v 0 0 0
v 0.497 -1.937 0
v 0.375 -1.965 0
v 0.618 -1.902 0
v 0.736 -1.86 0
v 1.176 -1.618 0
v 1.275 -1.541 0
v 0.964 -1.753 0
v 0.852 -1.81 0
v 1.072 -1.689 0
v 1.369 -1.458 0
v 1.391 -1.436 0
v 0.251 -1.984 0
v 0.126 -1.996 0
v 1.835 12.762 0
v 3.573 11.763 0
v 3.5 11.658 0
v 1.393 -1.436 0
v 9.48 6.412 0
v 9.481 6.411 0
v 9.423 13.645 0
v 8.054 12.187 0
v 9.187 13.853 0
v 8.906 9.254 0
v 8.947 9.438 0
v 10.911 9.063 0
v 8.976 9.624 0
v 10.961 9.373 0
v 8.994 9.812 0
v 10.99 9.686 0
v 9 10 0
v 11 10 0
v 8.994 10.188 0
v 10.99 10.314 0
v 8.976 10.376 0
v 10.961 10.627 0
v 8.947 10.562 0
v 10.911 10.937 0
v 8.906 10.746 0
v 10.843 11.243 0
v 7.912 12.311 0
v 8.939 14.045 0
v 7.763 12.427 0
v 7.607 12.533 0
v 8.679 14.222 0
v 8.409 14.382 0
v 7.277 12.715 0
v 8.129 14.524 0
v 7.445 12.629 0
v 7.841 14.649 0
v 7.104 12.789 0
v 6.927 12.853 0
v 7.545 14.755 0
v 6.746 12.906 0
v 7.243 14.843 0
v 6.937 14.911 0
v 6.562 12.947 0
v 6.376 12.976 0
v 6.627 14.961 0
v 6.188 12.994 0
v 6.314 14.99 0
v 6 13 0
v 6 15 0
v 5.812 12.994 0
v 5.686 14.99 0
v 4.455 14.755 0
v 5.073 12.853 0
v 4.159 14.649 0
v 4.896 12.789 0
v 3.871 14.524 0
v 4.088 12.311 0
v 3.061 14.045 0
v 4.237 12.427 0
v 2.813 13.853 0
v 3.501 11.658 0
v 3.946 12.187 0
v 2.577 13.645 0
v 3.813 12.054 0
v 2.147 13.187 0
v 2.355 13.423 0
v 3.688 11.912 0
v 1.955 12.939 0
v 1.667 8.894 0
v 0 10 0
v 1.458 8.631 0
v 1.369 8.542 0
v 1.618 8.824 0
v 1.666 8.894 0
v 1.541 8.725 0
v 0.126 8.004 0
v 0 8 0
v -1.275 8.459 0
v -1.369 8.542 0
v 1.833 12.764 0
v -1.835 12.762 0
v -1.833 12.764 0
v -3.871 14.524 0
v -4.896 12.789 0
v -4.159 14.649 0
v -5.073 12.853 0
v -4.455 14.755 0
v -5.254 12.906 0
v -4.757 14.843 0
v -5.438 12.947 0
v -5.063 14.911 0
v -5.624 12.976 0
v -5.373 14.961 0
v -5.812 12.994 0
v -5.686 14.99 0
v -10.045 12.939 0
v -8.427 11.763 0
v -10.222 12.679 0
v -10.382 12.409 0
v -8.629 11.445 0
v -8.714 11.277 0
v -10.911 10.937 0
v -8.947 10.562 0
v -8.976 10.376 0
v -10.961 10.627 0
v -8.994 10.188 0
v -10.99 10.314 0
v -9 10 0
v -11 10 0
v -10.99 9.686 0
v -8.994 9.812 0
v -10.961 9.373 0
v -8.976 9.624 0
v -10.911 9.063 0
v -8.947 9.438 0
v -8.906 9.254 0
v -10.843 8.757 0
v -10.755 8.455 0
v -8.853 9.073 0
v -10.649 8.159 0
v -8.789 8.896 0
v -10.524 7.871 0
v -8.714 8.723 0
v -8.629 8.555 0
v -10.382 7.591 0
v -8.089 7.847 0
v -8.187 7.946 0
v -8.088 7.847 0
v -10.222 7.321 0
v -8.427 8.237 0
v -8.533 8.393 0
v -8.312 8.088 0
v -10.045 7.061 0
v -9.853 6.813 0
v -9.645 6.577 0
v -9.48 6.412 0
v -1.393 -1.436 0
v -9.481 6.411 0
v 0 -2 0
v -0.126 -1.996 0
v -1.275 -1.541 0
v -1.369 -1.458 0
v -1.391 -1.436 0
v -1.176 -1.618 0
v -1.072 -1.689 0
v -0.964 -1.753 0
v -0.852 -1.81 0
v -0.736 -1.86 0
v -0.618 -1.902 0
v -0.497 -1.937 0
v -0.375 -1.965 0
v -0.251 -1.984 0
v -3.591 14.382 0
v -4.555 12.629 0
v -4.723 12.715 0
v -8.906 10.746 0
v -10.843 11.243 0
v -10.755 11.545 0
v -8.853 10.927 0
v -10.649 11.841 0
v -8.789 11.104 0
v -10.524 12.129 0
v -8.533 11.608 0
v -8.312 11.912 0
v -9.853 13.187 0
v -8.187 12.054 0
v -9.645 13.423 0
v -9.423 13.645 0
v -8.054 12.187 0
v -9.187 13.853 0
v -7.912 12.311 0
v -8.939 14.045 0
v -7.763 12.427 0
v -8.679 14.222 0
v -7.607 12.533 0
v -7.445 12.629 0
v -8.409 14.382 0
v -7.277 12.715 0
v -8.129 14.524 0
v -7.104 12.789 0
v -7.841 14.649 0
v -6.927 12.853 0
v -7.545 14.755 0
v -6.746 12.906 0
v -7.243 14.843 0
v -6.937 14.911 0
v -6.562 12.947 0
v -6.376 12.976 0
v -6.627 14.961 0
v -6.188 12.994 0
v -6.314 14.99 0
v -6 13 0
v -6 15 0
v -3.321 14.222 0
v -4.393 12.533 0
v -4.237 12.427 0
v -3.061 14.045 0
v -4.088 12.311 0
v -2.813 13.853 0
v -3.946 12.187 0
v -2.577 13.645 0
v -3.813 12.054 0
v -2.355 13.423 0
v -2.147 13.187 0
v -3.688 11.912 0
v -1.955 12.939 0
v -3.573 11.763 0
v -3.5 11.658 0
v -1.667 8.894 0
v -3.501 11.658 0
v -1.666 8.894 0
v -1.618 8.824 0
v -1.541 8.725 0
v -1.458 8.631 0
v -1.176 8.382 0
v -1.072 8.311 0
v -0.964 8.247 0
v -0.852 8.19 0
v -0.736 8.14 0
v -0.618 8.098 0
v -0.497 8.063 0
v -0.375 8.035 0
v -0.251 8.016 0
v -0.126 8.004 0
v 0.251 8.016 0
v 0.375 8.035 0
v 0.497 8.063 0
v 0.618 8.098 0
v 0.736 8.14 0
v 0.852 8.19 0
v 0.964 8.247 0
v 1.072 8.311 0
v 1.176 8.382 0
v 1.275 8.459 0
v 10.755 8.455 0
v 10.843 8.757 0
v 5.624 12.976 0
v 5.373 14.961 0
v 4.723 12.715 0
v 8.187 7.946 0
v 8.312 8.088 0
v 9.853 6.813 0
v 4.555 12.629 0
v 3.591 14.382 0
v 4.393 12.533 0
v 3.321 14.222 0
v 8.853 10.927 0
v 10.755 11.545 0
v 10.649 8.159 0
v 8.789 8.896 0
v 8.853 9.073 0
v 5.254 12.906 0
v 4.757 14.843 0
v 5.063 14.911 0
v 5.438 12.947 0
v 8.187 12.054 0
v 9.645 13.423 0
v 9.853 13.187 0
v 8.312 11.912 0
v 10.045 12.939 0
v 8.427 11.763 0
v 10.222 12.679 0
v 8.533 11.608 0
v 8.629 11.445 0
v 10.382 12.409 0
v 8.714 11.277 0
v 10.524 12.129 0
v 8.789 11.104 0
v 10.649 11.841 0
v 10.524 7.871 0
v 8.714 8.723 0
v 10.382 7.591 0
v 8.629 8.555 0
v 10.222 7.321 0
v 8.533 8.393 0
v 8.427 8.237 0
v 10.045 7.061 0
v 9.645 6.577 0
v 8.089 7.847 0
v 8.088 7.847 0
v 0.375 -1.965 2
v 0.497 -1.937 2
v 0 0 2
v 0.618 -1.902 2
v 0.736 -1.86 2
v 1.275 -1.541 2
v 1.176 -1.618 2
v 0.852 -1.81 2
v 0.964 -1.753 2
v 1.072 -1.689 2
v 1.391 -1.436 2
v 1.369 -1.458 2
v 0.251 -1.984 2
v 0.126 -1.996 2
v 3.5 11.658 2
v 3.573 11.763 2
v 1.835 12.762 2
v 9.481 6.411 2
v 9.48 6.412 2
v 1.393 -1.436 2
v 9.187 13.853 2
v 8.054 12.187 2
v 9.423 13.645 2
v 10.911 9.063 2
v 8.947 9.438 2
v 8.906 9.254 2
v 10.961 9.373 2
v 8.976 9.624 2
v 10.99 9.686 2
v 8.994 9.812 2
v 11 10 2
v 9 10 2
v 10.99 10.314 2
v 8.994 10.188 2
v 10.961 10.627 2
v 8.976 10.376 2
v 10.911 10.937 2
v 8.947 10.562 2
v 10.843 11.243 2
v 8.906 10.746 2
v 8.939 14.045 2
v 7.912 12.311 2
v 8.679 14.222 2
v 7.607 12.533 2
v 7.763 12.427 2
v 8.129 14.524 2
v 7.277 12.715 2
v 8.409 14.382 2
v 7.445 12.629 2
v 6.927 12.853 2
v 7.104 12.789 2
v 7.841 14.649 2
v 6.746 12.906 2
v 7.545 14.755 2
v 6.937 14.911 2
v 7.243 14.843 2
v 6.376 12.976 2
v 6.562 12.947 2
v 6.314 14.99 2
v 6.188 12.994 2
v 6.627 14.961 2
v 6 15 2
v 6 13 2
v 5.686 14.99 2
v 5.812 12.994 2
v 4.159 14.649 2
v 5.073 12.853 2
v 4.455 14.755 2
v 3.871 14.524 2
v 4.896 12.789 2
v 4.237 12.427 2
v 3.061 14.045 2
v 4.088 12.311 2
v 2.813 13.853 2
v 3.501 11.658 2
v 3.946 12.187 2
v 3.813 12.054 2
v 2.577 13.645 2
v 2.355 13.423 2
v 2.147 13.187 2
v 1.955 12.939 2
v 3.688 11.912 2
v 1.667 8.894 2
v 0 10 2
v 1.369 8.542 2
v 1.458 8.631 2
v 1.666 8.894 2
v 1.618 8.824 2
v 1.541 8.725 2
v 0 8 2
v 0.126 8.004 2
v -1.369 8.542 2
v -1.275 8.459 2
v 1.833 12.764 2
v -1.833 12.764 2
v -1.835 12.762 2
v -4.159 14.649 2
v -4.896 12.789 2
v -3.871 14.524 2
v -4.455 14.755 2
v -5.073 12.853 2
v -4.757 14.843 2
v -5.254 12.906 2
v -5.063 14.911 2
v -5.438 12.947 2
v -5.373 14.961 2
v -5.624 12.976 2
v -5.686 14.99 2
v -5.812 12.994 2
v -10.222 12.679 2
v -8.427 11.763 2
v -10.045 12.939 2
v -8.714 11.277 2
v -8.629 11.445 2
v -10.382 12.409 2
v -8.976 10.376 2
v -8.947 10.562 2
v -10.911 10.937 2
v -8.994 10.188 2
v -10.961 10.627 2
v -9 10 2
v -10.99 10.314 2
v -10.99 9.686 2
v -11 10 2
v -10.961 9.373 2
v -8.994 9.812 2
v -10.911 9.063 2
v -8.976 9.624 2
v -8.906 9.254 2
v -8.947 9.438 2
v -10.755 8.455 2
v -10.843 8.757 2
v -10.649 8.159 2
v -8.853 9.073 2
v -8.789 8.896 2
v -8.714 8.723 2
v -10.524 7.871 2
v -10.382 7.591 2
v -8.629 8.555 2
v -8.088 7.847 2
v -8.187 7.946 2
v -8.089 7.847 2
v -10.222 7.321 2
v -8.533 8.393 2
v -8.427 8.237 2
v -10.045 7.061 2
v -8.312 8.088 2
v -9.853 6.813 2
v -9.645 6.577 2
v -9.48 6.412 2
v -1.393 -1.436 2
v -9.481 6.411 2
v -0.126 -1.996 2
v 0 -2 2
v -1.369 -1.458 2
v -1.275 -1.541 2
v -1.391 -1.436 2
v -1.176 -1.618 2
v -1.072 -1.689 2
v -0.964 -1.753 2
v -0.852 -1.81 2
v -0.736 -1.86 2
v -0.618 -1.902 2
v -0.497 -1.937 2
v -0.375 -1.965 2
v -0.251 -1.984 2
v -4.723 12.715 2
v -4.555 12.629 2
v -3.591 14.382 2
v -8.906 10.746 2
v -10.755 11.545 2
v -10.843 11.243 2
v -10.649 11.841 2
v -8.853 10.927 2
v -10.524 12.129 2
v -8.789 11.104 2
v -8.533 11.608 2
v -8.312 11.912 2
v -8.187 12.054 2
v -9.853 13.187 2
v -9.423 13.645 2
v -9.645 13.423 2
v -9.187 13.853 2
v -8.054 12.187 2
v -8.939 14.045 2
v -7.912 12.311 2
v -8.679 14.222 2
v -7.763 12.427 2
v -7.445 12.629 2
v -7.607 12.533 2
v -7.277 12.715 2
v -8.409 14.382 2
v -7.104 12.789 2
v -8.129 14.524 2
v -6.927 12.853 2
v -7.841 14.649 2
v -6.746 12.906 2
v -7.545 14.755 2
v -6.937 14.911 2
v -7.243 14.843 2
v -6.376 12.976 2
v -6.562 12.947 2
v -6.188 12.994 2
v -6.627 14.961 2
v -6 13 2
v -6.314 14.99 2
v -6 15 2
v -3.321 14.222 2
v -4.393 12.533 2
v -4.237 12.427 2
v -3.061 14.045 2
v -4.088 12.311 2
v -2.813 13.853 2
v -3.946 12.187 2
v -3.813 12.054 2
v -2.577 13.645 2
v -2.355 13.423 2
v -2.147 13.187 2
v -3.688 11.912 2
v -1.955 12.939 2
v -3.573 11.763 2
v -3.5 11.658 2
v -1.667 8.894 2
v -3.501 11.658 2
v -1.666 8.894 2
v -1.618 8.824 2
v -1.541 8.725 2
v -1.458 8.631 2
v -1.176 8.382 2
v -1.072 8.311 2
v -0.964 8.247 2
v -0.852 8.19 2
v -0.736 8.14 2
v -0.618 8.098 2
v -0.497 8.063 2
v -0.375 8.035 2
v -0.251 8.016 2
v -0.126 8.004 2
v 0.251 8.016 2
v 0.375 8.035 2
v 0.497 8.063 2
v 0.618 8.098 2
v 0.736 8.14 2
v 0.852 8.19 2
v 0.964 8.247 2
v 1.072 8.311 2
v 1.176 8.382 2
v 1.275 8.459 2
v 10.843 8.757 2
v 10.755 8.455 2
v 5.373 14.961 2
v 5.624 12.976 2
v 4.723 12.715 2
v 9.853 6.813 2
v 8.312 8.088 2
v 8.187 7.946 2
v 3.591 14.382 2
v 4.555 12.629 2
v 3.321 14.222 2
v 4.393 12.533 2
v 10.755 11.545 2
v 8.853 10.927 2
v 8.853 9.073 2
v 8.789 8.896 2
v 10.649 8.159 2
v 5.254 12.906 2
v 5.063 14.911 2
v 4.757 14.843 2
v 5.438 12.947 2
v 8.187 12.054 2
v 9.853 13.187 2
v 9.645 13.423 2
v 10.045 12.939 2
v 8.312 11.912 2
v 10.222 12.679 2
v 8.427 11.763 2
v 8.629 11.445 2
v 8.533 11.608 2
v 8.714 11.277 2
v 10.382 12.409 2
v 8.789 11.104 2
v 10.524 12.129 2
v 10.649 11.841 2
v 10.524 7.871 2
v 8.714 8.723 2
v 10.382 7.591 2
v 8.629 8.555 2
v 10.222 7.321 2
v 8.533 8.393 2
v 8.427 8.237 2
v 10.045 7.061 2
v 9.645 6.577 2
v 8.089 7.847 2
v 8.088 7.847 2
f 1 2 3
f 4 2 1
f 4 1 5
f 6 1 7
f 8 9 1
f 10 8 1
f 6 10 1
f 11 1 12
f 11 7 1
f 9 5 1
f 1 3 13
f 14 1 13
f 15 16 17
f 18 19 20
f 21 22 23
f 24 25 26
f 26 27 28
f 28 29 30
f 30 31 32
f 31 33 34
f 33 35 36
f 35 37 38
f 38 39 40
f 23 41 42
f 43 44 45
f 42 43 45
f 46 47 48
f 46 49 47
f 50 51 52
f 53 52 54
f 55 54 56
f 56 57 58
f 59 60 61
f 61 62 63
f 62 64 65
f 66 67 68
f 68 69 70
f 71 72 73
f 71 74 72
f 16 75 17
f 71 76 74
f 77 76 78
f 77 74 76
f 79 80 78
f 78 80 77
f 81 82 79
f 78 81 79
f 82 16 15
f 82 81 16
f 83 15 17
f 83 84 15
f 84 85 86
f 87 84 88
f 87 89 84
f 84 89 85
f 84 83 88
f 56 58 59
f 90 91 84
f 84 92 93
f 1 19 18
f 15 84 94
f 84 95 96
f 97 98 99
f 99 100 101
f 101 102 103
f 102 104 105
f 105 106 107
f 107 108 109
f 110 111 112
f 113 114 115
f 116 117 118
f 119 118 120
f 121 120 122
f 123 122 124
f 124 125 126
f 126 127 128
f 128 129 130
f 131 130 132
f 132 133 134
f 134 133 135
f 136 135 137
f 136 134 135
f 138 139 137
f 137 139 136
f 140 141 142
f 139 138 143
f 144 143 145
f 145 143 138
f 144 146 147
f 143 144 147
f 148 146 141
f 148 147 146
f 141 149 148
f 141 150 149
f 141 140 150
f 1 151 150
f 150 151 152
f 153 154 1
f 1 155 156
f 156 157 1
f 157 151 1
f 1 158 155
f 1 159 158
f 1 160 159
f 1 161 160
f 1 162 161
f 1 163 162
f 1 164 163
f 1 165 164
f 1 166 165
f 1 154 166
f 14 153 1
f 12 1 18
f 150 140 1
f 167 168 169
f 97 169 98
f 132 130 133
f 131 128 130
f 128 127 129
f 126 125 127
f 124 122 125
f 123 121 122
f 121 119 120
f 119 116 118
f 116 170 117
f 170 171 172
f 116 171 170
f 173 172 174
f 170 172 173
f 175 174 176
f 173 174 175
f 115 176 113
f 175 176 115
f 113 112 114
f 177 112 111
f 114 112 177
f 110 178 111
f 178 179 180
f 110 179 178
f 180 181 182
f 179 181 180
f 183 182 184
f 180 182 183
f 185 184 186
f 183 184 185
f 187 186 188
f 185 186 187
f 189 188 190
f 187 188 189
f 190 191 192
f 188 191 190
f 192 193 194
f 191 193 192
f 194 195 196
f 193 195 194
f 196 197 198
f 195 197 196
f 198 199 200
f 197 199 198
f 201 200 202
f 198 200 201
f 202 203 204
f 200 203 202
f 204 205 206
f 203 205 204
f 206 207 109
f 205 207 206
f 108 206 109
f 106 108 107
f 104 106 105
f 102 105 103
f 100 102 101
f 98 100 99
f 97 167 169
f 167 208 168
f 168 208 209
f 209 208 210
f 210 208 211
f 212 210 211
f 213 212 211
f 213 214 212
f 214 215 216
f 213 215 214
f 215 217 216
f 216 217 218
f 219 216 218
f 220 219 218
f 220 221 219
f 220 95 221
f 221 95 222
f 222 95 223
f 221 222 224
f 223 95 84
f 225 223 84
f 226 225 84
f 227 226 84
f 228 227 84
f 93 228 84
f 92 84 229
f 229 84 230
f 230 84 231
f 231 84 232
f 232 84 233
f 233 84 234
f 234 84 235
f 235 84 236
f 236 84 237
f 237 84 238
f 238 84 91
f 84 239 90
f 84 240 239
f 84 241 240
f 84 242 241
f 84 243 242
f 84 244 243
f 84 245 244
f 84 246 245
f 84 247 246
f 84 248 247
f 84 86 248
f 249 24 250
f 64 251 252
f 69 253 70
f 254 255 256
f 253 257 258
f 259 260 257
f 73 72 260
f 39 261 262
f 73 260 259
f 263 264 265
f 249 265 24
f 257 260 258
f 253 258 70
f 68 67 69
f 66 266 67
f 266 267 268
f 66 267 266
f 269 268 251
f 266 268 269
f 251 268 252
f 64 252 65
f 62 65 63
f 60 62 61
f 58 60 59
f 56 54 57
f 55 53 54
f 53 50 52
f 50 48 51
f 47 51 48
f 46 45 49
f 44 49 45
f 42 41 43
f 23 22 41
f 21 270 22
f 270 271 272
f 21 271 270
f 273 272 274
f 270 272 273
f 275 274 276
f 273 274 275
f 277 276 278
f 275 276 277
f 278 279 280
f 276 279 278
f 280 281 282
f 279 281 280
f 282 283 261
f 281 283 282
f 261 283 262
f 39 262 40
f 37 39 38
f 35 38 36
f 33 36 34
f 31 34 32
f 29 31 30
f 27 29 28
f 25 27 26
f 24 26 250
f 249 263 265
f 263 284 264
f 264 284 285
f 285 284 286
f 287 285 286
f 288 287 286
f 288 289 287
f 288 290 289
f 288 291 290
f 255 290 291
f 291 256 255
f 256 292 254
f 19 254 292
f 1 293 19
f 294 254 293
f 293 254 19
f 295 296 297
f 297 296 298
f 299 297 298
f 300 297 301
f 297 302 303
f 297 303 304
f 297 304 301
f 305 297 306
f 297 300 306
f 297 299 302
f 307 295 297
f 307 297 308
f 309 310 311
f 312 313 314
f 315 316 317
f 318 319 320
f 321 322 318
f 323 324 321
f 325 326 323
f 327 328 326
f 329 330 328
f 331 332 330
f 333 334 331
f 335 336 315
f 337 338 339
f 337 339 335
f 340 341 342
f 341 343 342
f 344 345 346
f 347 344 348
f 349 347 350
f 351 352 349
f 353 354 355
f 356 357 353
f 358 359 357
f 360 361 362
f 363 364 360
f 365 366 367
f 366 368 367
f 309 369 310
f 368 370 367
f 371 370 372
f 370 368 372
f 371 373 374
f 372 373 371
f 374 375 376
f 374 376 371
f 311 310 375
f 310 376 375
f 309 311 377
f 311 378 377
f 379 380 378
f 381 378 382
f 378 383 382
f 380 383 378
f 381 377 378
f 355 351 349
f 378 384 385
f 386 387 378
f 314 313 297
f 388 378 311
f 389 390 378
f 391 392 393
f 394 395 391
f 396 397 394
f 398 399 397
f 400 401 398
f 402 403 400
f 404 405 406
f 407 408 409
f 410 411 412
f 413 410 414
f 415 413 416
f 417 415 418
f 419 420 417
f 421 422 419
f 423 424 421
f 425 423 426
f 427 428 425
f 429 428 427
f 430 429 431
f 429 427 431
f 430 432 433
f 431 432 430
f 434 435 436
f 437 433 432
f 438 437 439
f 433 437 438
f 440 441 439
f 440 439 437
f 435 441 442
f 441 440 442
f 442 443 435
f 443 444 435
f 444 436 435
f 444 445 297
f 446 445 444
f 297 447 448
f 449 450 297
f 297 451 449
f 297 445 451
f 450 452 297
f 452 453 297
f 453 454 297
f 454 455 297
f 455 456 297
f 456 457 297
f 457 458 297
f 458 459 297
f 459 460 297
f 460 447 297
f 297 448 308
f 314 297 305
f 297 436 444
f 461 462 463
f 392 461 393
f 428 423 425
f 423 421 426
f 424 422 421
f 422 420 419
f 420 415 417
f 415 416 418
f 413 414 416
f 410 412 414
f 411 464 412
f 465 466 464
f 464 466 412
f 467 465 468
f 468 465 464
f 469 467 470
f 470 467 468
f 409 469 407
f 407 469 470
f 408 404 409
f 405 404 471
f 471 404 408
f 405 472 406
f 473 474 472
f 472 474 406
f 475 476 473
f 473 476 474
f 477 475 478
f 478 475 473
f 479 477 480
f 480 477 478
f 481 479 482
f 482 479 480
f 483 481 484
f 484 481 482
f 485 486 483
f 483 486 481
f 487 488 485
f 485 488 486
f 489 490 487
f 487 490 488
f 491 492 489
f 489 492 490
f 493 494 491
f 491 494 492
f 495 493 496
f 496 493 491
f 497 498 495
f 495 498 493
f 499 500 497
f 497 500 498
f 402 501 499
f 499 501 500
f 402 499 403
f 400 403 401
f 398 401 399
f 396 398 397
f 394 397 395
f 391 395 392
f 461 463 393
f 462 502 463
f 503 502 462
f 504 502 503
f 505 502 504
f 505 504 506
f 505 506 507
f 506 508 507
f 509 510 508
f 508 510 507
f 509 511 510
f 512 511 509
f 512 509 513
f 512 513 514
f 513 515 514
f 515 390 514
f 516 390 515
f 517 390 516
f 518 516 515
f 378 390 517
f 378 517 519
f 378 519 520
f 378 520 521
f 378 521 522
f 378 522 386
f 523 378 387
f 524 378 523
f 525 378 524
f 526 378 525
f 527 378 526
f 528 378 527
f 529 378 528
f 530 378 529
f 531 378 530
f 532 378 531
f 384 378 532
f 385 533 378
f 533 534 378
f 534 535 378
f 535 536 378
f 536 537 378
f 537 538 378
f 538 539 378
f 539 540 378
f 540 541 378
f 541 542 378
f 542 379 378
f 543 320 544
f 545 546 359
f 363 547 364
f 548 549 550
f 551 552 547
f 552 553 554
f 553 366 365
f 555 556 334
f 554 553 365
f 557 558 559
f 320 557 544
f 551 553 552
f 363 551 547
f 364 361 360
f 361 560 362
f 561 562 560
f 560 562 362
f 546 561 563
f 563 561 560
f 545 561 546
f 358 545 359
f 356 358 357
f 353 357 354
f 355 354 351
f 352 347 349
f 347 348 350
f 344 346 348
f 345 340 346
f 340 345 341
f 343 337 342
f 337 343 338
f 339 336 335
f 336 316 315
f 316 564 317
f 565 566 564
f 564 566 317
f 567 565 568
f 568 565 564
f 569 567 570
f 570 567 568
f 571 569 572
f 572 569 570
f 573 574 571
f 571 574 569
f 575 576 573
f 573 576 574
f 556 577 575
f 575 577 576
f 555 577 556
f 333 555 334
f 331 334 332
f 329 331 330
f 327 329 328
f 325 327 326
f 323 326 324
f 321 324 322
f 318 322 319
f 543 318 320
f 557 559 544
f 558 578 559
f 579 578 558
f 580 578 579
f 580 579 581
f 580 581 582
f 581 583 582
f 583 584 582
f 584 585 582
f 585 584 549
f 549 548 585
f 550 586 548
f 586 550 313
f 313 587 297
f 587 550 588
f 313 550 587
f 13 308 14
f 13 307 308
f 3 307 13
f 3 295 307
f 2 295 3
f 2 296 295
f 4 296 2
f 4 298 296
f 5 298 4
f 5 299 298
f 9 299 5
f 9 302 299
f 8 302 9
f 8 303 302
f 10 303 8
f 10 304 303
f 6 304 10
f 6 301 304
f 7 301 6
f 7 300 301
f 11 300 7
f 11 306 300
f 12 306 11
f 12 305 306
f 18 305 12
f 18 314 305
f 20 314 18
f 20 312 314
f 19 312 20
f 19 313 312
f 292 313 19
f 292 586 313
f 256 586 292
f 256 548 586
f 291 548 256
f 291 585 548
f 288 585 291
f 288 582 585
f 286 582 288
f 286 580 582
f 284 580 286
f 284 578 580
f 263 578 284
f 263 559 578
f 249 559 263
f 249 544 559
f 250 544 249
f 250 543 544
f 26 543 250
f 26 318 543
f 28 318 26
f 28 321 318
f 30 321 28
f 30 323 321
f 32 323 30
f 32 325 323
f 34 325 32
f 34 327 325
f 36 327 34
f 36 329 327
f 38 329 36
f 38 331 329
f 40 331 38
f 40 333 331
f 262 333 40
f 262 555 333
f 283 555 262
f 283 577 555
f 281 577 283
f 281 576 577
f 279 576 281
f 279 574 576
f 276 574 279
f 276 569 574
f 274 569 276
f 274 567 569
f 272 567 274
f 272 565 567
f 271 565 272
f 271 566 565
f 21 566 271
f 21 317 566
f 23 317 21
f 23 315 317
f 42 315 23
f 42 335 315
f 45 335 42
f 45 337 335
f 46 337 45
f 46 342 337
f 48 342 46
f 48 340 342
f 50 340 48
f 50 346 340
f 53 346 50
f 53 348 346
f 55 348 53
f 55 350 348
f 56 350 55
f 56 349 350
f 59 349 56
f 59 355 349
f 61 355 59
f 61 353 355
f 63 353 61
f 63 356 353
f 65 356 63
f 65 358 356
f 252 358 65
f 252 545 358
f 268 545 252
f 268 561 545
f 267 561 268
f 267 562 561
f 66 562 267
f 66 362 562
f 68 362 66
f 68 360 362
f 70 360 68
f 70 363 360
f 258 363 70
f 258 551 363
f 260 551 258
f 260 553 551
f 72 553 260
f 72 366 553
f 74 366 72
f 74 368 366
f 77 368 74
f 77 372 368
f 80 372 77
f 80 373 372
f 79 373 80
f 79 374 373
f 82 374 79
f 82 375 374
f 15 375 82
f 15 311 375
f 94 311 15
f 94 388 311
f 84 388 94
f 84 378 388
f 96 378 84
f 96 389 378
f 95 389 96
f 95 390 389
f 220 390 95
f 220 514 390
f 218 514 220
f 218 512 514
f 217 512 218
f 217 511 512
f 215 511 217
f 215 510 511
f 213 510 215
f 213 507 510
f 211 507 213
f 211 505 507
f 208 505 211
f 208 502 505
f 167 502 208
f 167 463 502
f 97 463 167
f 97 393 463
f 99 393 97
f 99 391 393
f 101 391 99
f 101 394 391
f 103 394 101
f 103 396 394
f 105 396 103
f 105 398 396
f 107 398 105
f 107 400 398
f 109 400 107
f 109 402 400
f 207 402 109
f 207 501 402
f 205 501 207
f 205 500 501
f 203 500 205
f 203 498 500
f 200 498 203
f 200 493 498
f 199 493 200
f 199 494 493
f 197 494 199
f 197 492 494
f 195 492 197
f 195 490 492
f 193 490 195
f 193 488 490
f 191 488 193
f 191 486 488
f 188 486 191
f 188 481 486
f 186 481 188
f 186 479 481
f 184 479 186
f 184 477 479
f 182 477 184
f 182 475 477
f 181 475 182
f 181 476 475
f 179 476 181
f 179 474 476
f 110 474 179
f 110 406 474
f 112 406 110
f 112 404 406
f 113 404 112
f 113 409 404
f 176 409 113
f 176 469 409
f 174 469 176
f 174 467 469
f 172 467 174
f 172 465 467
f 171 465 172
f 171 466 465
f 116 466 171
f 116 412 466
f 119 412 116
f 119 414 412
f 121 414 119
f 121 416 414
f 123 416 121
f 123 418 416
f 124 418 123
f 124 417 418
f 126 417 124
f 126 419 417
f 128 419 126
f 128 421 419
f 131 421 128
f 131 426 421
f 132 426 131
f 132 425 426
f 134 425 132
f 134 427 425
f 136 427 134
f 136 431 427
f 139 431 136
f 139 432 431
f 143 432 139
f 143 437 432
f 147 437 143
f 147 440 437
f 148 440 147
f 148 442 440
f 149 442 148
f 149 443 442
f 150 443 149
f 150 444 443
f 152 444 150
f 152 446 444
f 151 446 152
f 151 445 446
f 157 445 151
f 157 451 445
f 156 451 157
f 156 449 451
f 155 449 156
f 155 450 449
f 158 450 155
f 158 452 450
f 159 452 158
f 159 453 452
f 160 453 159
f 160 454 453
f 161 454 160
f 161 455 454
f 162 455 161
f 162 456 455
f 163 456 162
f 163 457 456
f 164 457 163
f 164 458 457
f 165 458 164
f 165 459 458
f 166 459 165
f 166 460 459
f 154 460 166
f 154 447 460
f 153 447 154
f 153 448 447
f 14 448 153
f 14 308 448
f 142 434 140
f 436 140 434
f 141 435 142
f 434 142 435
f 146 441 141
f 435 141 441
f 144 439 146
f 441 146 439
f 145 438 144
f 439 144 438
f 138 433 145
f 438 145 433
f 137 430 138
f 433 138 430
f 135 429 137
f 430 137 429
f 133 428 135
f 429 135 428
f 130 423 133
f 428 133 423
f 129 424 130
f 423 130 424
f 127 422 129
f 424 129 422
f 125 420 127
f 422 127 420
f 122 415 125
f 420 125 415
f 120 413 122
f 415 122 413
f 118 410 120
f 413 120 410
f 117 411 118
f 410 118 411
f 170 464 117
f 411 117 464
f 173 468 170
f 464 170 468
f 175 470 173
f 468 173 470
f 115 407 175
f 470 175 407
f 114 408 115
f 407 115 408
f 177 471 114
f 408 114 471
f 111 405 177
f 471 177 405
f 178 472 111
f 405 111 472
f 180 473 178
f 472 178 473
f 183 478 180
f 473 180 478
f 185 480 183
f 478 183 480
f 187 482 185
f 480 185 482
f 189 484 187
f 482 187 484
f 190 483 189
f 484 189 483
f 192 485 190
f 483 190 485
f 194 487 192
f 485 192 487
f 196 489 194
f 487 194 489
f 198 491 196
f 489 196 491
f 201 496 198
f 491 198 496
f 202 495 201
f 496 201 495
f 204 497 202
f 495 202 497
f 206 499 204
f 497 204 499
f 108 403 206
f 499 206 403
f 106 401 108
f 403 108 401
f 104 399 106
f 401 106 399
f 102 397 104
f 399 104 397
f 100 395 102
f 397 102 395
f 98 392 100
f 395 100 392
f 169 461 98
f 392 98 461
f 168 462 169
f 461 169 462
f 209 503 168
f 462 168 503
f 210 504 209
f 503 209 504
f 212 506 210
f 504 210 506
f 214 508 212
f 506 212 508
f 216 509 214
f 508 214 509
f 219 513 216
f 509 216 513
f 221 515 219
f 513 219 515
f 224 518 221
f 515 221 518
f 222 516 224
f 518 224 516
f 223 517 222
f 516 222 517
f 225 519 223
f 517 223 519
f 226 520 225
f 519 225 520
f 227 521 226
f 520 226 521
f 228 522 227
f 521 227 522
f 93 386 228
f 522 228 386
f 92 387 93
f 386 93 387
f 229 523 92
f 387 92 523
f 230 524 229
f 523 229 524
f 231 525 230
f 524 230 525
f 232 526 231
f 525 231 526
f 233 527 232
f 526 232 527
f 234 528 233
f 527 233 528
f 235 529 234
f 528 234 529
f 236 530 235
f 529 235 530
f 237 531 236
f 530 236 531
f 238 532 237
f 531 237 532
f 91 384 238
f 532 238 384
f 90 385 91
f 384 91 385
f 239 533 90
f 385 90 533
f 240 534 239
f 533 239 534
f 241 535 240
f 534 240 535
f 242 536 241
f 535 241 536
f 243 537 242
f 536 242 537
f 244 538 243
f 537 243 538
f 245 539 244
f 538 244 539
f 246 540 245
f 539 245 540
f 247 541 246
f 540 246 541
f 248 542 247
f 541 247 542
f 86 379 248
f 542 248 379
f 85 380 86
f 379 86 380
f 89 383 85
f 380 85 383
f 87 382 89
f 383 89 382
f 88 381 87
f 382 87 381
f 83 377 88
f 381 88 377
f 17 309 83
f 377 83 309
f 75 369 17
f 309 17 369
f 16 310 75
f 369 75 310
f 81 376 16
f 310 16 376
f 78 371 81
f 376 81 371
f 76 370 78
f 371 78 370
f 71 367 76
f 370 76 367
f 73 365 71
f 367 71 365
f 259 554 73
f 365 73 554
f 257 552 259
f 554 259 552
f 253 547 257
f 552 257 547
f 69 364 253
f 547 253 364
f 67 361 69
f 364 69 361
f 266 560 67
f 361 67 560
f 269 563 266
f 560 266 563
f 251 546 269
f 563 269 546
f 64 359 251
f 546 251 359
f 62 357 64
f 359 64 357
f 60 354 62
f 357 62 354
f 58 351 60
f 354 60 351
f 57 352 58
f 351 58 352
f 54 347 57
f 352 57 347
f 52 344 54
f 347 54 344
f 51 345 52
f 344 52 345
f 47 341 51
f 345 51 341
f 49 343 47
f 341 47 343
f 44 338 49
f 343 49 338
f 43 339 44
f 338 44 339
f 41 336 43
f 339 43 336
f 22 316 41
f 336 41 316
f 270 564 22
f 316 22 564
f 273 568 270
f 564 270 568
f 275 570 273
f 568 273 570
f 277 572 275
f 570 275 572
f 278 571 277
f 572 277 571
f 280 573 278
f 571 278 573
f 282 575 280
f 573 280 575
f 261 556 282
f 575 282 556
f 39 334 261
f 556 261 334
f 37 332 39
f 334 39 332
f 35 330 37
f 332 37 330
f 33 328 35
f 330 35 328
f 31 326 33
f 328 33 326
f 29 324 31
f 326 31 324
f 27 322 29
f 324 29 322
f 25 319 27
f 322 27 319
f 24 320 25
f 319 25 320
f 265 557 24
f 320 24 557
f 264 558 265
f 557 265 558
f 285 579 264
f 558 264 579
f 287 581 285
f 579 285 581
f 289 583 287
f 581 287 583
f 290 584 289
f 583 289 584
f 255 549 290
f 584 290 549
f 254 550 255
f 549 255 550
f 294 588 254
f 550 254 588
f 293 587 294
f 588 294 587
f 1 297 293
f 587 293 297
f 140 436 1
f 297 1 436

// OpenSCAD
// file: ../utils/shapes.scad
/*
  author: Christopher O'Brien  <obriencj@gmail.com>
  license: GPL v3
*/


function shared_tangents(p1, p2) =
     let(r1 = p1[2],
	 r2 = p2[2],
	 dx = p2.x - p1.x,
	 dy = p2.y - p1.y,
	 d = sqrt(dx * dx + dy * dy),
	 theta = atan2(dy, dx) + acos((r1 - r2) / d))
     [[p1.x + (cos(theta) * r1), p1.y + (sin(theta) * r1)],
      [p2.x + (cos(theta) * r2), p2.y + (sin(theta) * r2)]];


module _rounded_polygon(points, $fn=100) {
/*
  each point is [x, y, r] of a circle

  adapted from
  http://forum.openscad.org/Script-to-replicate-hull-and-minkoswki-for-CSG-export-import-into-FreeCAD-td16537.html#a16556
*/

     p_len = len(points);

     function p_tang(index) =
	  shared_tangents(points[index], points[(index + 1) % p_len]);

     // all the positive radius circles
     for(p = points) {
	  if(p[2] > 0) {
	       translate([p[0], p[1]]) {
		    circle(p[2]);
	       };
	  };
     };

     difference() {
	  // a polygon connecting the tangent points between all
	  // circles in order
	  polygon([for(i = [0: p_len - 1]) for(e = p_tang(i)) e]);

	  // then subtract all the negative radius circles
	  for(p = points) {
	       if(p[2] < 0) {
		    translate([p[0], p[1]]) {
			 circle(-p[2]);
		    };
	       };
	  };
     };
}


module rounded_polygon(points, thick=0, $fn=100) {
     /*
       each point in points is a vector of [x, y, r] where r is
       positive to indicate that it is an interior point, and negative
       to indicate it is an exterior point.
     */

     if(thick > 0) {
	  linear_extrude(thick) _rounded_polygon(points, $fn);
     } else {
	  _rounded_polygon(points, $fn);
     }
}


function _r_adj(r, adj) =
     let(ra = r + adj) (r > 0)? max(0, ra): ra;


function adj_rounded_poly(points, adj) =
     [for(p=points) [p.x, p.y, _r_adj(p[2], adj)]];


module rounded_inset_poly(points, inset, thick, lip=undef) {
     tl = lip? (thick - lip): (thick / 2);

     rounded_polygon(points, tl);
     translate([0, 0, tl]) {
	  rounded_polygon(adj_rounded_poly(points, -inset),
			  thick - tl);
     };
}


module rounded_hollow_poly(points, inset, thick) {
     linear_extrude(thick) {
	  difference() {
	       rounded_polygon(points);
	       rounded_polygon(adj_rounded_poly(points, -inset));
	  };
     };
}


/**
   A cylinder with a bore through it

   * barrel_r is the exterior radius
   * barrel_h is the overall height
   * bore_r is the interior radius
*/
module barrel(barrel_r, barrel_h, bore_r, $fn=100) {
     linear_extrude(barrel_h) {
	  difference() {
	       circle(barrel_r);
	       circle(bore_r);
	  };
     };
}


/**
   A ring with a circular profile.

   * ring_ir is the interior radius
   * cross_r is the radius of the cross-section
*/
module o_ring(ring_ir, cross_r, $fn=100) {
     rotate_extrude(angle=360) {
	  translate([ring_ir + cross_r, 0, 0]) {
	       circle(cross_r);
	  };
     };
}


/**
   A ring with a D shaped profile.

   * ring_ir is the interior radius
   * cross_r is the radius of the cross-section, before being affected
   by the factor.
   * The factor describes how much of a circle is being presented in
   the cross-section. A factor of 1 is equivalent of an oring.
*/
module d_ring(ring_ir, cross_r, factor=0.25, $fn=100) {

     factor_shift = (cross_r * 2 * factor) - cross_r;

     rotate_extrude(angle=360) {
	  difference() {
	       translate([ring_ir + factor_shift , 0, 0]) {
		    circle(cross_r);
	       };
	       square([ring_ir * 2, ring_ir * 2], true);
	  };
     };
}


module rounded_plate(width, height, thickness, turn_r=5.1, $fn=50) {
     turn_d = turn_r * 2;

     translate([turn_r, turn_r, 0]) {
          linear_extrude(thickness) {
               minkowski() {
                    square([width - turn_d, height - turn_d]);
                    circle(turn_r);
               };
          };
     };
}


// The end.
// main file
use <../utils/shapes.scad>;


points =
     [[-6, 10, 5],
      [0, 10, 0],
      [6, 10, 5],
      [0, 0, 2]];


linear_extrude(2) {
     difference() {
	  rounded_polygon(points);
	  rounded_polygon(adj_rounded_poly(points, -2));
     };
};


// The end.
